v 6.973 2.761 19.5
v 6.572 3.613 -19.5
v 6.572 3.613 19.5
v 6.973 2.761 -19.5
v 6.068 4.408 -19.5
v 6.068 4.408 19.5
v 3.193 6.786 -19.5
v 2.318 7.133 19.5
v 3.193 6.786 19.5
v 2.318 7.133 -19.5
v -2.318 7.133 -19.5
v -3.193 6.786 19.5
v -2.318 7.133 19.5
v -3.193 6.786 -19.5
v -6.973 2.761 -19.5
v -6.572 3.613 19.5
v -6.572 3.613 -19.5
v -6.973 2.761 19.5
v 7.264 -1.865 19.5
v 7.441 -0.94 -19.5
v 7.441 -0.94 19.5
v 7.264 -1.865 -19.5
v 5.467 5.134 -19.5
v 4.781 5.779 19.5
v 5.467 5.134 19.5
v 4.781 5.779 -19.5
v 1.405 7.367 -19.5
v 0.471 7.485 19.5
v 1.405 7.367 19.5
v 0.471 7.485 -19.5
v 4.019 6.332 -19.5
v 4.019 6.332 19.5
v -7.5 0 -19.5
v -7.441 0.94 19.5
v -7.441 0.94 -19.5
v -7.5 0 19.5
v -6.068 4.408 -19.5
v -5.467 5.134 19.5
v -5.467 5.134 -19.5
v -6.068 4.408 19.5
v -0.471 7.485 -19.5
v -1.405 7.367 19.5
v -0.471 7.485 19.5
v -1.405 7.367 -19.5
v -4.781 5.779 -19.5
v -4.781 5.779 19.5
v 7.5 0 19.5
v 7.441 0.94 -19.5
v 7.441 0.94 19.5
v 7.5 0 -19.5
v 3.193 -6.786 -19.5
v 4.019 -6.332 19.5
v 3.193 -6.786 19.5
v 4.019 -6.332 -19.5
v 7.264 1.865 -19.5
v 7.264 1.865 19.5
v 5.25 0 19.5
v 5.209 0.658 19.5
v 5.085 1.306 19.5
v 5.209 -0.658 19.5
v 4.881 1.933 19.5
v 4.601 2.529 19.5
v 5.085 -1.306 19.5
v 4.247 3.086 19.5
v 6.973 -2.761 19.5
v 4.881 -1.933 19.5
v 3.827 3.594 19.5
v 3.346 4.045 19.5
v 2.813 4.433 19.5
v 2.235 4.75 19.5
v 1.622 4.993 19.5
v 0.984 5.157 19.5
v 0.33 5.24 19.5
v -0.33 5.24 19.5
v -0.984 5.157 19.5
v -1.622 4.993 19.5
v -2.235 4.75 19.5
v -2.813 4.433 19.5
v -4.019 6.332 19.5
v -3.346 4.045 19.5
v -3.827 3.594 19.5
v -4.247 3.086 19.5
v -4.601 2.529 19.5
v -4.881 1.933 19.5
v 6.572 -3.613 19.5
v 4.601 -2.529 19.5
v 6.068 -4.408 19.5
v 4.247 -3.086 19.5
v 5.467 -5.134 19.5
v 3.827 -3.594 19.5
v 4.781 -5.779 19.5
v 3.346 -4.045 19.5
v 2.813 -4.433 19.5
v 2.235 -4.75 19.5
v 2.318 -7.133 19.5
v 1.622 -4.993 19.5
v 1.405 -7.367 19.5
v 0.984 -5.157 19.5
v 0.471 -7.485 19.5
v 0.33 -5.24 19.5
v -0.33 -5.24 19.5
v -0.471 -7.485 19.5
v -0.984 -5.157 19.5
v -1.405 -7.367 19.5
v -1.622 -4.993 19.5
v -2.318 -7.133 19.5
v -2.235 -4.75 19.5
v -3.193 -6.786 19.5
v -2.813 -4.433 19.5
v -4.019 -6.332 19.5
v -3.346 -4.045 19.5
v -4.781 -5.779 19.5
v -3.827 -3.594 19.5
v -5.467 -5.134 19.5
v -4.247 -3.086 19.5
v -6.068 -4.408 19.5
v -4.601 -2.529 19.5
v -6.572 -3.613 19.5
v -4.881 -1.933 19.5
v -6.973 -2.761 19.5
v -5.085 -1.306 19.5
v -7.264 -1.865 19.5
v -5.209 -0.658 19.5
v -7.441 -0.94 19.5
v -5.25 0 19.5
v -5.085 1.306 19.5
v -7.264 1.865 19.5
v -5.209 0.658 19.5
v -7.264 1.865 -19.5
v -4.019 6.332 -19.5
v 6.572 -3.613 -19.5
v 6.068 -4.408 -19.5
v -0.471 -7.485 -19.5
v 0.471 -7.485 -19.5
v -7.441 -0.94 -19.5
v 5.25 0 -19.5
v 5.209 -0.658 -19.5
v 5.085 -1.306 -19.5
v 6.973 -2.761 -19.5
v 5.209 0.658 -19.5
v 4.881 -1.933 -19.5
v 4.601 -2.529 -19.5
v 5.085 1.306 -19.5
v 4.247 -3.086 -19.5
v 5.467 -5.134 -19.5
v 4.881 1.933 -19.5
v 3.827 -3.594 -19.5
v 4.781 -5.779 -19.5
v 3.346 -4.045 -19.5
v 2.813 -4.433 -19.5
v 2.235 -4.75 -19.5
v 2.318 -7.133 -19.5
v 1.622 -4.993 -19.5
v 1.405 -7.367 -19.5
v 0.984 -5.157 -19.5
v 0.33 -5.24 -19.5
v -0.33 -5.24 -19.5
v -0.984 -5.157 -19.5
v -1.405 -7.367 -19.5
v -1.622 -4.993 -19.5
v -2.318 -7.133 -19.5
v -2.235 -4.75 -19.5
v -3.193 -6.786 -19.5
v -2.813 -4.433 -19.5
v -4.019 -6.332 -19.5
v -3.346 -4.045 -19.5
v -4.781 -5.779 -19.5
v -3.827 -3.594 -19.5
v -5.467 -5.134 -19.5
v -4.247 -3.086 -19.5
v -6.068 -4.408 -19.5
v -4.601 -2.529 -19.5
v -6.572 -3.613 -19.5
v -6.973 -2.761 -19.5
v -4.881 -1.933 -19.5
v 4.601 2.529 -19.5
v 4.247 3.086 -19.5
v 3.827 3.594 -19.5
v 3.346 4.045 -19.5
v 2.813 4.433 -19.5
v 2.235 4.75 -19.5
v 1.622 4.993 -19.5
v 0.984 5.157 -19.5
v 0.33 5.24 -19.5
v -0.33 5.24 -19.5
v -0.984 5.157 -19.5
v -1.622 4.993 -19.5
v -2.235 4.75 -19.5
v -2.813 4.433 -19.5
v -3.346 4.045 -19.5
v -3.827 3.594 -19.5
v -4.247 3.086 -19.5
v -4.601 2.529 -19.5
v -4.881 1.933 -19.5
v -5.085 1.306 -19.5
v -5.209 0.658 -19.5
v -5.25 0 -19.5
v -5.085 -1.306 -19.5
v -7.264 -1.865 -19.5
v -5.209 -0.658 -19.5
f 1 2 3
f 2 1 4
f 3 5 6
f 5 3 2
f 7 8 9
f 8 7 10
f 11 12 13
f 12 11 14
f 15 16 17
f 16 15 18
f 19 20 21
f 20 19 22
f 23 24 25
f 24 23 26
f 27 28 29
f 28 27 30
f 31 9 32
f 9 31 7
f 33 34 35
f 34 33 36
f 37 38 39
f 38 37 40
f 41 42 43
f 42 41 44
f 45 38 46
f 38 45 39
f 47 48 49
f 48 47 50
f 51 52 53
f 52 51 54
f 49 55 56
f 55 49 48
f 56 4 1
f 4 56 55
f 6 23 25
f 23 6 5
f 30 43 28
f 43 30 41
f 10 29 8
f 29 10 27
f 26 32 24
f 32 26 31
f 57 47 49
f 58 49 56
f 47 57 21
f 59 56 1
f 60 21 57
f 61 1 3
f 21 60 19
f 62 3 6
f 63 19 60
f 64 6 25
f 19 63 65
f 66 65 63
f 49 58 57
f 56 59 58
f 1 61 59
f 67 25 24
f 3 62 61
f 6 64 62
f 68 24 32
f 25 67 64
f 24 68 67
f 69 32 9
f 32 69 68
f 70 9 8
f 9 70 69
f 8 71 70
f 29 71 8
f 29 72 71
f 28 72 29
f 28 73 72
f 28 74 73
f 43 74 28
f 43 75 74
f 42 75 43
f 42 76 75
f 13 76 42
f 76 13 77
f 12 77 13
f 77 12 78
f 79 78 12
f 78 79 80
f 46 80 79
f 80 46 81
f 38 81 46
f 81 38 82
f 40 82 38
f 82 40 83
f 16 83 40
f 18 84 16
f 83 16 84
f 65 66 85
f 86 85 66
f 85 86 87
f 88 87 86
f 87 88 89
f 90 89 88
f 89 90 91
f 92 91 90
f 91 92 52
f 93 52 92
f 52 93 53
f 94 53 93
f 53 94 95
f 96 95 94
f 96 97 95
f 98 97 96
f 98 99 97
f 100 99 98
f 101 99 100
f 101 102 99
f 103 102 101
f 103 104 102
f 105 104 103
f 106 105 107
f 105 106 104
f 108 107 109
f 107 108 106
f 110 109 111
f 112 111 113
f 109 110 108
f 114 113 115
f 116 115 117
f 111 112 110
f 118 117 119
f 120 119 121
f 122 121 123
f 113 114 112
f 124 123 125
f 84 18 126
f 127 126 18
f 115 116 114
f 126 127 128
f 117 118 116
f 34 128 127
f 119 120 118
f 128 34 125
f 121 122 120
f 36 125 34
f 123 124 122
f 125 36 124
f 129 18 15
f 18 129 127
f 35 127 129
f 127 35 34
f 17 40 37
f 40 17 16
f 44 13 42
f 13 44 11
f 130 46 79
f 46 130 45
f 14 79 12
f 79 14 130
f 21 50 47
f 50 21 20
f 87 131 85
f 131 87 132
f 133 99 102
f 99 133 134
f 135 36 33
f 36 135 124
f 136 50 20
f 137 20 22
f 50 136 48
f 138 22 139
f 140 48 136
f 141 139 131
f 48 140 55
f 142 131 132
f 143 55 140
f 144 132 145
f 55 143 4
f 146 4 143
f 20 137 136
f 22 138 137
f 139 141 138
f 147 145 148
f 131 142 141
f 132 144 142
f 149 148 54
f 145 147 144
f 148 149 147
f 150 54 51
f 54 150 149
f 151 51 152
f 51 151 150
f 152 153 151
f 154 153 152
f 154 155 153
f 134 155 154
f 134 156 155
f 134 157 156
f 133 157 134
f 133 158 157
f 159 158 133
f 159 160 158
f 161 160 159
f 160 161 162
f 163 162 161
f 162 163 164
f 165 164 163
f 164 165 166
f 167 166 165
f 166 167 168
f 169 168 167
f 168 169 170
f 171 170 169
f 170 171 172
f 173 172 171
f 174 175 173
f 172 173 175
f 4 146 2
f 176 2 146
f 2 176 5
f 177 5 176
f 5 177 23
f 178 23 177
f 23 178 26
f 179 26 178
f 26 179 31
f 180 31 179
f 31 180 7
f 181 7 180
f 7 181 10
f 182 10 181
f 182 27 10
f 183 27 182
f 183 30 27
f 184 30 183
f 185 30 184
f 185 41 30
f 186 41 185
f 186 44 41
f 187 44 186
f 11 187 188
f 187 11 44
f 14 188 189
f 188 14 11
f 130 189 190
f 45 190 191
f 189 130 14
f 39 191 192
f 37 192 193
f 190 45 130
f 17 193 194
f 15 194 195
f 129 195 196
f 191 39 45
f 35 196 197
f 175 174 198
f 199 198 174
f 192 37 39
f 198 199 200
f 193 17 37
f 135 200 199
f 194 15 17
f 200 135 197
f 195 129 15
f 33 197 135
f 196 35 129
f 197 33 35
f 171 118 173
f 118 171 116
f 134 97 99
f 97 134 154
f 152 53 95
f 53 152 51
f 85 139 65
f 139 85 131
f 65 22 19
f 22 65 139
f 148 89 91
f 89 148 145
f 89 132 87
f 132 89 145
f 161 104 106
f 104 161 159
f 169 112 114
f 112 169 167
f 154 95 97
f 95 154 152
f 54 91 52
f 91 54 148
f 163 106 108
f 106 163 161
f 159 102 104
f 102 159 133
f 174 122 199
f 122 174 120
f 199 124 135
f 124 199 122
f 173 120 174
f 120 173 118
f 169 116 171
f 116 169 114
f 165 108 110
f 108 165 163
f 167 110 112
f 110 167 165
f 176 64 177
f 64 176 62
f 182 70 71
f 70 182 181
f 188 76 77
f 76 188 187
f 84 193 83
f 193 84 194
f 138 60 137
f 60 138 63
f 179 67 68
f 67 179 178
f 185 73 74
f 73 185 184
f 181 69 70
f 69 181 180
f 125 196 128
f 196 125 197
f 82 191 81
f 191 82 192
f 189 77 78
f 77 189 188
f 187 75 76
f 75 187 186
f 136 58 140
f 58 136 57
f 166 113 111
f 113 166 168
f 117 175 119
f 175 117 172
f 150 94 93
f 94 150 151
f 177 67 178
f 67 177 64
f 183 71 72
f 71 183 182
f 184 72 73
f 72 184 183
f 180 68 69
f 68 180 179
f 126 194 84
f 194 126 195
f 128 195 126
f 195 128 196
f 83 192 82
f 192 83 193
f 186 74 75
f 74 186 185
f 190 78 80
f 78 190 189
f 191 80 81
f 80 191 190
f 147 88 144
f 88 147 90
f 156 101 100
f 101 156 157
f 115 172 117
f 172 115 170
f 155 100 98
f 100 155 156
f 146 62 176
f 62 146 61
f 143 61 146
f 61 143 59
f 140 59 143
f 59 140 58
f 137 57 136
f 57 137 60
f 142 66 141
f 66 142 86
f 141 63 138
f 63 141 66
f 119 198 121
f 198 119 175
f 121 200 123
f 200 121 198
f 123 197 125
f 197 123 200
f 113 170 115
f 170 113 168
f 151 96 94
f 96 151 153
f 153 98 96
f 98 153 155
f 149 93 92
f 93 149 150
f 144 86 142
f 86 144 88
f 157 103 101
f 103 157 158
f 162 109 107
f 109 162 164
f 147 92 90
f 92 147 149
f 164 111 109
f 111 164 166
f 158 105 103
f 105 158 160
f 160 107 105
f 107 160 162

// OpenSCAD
$fn = 50;


difference() {
	union() {
		translate(v = [0, 0, -19.5000000000]) {
			cylinder(h = 39, r = 7.5000000000);
		}
	}
	union() {
		translate(v = [0, 0, -100.0000000000]) {
			cylinder(h = 200, r = 5.2500000000);
		}
	}
}
